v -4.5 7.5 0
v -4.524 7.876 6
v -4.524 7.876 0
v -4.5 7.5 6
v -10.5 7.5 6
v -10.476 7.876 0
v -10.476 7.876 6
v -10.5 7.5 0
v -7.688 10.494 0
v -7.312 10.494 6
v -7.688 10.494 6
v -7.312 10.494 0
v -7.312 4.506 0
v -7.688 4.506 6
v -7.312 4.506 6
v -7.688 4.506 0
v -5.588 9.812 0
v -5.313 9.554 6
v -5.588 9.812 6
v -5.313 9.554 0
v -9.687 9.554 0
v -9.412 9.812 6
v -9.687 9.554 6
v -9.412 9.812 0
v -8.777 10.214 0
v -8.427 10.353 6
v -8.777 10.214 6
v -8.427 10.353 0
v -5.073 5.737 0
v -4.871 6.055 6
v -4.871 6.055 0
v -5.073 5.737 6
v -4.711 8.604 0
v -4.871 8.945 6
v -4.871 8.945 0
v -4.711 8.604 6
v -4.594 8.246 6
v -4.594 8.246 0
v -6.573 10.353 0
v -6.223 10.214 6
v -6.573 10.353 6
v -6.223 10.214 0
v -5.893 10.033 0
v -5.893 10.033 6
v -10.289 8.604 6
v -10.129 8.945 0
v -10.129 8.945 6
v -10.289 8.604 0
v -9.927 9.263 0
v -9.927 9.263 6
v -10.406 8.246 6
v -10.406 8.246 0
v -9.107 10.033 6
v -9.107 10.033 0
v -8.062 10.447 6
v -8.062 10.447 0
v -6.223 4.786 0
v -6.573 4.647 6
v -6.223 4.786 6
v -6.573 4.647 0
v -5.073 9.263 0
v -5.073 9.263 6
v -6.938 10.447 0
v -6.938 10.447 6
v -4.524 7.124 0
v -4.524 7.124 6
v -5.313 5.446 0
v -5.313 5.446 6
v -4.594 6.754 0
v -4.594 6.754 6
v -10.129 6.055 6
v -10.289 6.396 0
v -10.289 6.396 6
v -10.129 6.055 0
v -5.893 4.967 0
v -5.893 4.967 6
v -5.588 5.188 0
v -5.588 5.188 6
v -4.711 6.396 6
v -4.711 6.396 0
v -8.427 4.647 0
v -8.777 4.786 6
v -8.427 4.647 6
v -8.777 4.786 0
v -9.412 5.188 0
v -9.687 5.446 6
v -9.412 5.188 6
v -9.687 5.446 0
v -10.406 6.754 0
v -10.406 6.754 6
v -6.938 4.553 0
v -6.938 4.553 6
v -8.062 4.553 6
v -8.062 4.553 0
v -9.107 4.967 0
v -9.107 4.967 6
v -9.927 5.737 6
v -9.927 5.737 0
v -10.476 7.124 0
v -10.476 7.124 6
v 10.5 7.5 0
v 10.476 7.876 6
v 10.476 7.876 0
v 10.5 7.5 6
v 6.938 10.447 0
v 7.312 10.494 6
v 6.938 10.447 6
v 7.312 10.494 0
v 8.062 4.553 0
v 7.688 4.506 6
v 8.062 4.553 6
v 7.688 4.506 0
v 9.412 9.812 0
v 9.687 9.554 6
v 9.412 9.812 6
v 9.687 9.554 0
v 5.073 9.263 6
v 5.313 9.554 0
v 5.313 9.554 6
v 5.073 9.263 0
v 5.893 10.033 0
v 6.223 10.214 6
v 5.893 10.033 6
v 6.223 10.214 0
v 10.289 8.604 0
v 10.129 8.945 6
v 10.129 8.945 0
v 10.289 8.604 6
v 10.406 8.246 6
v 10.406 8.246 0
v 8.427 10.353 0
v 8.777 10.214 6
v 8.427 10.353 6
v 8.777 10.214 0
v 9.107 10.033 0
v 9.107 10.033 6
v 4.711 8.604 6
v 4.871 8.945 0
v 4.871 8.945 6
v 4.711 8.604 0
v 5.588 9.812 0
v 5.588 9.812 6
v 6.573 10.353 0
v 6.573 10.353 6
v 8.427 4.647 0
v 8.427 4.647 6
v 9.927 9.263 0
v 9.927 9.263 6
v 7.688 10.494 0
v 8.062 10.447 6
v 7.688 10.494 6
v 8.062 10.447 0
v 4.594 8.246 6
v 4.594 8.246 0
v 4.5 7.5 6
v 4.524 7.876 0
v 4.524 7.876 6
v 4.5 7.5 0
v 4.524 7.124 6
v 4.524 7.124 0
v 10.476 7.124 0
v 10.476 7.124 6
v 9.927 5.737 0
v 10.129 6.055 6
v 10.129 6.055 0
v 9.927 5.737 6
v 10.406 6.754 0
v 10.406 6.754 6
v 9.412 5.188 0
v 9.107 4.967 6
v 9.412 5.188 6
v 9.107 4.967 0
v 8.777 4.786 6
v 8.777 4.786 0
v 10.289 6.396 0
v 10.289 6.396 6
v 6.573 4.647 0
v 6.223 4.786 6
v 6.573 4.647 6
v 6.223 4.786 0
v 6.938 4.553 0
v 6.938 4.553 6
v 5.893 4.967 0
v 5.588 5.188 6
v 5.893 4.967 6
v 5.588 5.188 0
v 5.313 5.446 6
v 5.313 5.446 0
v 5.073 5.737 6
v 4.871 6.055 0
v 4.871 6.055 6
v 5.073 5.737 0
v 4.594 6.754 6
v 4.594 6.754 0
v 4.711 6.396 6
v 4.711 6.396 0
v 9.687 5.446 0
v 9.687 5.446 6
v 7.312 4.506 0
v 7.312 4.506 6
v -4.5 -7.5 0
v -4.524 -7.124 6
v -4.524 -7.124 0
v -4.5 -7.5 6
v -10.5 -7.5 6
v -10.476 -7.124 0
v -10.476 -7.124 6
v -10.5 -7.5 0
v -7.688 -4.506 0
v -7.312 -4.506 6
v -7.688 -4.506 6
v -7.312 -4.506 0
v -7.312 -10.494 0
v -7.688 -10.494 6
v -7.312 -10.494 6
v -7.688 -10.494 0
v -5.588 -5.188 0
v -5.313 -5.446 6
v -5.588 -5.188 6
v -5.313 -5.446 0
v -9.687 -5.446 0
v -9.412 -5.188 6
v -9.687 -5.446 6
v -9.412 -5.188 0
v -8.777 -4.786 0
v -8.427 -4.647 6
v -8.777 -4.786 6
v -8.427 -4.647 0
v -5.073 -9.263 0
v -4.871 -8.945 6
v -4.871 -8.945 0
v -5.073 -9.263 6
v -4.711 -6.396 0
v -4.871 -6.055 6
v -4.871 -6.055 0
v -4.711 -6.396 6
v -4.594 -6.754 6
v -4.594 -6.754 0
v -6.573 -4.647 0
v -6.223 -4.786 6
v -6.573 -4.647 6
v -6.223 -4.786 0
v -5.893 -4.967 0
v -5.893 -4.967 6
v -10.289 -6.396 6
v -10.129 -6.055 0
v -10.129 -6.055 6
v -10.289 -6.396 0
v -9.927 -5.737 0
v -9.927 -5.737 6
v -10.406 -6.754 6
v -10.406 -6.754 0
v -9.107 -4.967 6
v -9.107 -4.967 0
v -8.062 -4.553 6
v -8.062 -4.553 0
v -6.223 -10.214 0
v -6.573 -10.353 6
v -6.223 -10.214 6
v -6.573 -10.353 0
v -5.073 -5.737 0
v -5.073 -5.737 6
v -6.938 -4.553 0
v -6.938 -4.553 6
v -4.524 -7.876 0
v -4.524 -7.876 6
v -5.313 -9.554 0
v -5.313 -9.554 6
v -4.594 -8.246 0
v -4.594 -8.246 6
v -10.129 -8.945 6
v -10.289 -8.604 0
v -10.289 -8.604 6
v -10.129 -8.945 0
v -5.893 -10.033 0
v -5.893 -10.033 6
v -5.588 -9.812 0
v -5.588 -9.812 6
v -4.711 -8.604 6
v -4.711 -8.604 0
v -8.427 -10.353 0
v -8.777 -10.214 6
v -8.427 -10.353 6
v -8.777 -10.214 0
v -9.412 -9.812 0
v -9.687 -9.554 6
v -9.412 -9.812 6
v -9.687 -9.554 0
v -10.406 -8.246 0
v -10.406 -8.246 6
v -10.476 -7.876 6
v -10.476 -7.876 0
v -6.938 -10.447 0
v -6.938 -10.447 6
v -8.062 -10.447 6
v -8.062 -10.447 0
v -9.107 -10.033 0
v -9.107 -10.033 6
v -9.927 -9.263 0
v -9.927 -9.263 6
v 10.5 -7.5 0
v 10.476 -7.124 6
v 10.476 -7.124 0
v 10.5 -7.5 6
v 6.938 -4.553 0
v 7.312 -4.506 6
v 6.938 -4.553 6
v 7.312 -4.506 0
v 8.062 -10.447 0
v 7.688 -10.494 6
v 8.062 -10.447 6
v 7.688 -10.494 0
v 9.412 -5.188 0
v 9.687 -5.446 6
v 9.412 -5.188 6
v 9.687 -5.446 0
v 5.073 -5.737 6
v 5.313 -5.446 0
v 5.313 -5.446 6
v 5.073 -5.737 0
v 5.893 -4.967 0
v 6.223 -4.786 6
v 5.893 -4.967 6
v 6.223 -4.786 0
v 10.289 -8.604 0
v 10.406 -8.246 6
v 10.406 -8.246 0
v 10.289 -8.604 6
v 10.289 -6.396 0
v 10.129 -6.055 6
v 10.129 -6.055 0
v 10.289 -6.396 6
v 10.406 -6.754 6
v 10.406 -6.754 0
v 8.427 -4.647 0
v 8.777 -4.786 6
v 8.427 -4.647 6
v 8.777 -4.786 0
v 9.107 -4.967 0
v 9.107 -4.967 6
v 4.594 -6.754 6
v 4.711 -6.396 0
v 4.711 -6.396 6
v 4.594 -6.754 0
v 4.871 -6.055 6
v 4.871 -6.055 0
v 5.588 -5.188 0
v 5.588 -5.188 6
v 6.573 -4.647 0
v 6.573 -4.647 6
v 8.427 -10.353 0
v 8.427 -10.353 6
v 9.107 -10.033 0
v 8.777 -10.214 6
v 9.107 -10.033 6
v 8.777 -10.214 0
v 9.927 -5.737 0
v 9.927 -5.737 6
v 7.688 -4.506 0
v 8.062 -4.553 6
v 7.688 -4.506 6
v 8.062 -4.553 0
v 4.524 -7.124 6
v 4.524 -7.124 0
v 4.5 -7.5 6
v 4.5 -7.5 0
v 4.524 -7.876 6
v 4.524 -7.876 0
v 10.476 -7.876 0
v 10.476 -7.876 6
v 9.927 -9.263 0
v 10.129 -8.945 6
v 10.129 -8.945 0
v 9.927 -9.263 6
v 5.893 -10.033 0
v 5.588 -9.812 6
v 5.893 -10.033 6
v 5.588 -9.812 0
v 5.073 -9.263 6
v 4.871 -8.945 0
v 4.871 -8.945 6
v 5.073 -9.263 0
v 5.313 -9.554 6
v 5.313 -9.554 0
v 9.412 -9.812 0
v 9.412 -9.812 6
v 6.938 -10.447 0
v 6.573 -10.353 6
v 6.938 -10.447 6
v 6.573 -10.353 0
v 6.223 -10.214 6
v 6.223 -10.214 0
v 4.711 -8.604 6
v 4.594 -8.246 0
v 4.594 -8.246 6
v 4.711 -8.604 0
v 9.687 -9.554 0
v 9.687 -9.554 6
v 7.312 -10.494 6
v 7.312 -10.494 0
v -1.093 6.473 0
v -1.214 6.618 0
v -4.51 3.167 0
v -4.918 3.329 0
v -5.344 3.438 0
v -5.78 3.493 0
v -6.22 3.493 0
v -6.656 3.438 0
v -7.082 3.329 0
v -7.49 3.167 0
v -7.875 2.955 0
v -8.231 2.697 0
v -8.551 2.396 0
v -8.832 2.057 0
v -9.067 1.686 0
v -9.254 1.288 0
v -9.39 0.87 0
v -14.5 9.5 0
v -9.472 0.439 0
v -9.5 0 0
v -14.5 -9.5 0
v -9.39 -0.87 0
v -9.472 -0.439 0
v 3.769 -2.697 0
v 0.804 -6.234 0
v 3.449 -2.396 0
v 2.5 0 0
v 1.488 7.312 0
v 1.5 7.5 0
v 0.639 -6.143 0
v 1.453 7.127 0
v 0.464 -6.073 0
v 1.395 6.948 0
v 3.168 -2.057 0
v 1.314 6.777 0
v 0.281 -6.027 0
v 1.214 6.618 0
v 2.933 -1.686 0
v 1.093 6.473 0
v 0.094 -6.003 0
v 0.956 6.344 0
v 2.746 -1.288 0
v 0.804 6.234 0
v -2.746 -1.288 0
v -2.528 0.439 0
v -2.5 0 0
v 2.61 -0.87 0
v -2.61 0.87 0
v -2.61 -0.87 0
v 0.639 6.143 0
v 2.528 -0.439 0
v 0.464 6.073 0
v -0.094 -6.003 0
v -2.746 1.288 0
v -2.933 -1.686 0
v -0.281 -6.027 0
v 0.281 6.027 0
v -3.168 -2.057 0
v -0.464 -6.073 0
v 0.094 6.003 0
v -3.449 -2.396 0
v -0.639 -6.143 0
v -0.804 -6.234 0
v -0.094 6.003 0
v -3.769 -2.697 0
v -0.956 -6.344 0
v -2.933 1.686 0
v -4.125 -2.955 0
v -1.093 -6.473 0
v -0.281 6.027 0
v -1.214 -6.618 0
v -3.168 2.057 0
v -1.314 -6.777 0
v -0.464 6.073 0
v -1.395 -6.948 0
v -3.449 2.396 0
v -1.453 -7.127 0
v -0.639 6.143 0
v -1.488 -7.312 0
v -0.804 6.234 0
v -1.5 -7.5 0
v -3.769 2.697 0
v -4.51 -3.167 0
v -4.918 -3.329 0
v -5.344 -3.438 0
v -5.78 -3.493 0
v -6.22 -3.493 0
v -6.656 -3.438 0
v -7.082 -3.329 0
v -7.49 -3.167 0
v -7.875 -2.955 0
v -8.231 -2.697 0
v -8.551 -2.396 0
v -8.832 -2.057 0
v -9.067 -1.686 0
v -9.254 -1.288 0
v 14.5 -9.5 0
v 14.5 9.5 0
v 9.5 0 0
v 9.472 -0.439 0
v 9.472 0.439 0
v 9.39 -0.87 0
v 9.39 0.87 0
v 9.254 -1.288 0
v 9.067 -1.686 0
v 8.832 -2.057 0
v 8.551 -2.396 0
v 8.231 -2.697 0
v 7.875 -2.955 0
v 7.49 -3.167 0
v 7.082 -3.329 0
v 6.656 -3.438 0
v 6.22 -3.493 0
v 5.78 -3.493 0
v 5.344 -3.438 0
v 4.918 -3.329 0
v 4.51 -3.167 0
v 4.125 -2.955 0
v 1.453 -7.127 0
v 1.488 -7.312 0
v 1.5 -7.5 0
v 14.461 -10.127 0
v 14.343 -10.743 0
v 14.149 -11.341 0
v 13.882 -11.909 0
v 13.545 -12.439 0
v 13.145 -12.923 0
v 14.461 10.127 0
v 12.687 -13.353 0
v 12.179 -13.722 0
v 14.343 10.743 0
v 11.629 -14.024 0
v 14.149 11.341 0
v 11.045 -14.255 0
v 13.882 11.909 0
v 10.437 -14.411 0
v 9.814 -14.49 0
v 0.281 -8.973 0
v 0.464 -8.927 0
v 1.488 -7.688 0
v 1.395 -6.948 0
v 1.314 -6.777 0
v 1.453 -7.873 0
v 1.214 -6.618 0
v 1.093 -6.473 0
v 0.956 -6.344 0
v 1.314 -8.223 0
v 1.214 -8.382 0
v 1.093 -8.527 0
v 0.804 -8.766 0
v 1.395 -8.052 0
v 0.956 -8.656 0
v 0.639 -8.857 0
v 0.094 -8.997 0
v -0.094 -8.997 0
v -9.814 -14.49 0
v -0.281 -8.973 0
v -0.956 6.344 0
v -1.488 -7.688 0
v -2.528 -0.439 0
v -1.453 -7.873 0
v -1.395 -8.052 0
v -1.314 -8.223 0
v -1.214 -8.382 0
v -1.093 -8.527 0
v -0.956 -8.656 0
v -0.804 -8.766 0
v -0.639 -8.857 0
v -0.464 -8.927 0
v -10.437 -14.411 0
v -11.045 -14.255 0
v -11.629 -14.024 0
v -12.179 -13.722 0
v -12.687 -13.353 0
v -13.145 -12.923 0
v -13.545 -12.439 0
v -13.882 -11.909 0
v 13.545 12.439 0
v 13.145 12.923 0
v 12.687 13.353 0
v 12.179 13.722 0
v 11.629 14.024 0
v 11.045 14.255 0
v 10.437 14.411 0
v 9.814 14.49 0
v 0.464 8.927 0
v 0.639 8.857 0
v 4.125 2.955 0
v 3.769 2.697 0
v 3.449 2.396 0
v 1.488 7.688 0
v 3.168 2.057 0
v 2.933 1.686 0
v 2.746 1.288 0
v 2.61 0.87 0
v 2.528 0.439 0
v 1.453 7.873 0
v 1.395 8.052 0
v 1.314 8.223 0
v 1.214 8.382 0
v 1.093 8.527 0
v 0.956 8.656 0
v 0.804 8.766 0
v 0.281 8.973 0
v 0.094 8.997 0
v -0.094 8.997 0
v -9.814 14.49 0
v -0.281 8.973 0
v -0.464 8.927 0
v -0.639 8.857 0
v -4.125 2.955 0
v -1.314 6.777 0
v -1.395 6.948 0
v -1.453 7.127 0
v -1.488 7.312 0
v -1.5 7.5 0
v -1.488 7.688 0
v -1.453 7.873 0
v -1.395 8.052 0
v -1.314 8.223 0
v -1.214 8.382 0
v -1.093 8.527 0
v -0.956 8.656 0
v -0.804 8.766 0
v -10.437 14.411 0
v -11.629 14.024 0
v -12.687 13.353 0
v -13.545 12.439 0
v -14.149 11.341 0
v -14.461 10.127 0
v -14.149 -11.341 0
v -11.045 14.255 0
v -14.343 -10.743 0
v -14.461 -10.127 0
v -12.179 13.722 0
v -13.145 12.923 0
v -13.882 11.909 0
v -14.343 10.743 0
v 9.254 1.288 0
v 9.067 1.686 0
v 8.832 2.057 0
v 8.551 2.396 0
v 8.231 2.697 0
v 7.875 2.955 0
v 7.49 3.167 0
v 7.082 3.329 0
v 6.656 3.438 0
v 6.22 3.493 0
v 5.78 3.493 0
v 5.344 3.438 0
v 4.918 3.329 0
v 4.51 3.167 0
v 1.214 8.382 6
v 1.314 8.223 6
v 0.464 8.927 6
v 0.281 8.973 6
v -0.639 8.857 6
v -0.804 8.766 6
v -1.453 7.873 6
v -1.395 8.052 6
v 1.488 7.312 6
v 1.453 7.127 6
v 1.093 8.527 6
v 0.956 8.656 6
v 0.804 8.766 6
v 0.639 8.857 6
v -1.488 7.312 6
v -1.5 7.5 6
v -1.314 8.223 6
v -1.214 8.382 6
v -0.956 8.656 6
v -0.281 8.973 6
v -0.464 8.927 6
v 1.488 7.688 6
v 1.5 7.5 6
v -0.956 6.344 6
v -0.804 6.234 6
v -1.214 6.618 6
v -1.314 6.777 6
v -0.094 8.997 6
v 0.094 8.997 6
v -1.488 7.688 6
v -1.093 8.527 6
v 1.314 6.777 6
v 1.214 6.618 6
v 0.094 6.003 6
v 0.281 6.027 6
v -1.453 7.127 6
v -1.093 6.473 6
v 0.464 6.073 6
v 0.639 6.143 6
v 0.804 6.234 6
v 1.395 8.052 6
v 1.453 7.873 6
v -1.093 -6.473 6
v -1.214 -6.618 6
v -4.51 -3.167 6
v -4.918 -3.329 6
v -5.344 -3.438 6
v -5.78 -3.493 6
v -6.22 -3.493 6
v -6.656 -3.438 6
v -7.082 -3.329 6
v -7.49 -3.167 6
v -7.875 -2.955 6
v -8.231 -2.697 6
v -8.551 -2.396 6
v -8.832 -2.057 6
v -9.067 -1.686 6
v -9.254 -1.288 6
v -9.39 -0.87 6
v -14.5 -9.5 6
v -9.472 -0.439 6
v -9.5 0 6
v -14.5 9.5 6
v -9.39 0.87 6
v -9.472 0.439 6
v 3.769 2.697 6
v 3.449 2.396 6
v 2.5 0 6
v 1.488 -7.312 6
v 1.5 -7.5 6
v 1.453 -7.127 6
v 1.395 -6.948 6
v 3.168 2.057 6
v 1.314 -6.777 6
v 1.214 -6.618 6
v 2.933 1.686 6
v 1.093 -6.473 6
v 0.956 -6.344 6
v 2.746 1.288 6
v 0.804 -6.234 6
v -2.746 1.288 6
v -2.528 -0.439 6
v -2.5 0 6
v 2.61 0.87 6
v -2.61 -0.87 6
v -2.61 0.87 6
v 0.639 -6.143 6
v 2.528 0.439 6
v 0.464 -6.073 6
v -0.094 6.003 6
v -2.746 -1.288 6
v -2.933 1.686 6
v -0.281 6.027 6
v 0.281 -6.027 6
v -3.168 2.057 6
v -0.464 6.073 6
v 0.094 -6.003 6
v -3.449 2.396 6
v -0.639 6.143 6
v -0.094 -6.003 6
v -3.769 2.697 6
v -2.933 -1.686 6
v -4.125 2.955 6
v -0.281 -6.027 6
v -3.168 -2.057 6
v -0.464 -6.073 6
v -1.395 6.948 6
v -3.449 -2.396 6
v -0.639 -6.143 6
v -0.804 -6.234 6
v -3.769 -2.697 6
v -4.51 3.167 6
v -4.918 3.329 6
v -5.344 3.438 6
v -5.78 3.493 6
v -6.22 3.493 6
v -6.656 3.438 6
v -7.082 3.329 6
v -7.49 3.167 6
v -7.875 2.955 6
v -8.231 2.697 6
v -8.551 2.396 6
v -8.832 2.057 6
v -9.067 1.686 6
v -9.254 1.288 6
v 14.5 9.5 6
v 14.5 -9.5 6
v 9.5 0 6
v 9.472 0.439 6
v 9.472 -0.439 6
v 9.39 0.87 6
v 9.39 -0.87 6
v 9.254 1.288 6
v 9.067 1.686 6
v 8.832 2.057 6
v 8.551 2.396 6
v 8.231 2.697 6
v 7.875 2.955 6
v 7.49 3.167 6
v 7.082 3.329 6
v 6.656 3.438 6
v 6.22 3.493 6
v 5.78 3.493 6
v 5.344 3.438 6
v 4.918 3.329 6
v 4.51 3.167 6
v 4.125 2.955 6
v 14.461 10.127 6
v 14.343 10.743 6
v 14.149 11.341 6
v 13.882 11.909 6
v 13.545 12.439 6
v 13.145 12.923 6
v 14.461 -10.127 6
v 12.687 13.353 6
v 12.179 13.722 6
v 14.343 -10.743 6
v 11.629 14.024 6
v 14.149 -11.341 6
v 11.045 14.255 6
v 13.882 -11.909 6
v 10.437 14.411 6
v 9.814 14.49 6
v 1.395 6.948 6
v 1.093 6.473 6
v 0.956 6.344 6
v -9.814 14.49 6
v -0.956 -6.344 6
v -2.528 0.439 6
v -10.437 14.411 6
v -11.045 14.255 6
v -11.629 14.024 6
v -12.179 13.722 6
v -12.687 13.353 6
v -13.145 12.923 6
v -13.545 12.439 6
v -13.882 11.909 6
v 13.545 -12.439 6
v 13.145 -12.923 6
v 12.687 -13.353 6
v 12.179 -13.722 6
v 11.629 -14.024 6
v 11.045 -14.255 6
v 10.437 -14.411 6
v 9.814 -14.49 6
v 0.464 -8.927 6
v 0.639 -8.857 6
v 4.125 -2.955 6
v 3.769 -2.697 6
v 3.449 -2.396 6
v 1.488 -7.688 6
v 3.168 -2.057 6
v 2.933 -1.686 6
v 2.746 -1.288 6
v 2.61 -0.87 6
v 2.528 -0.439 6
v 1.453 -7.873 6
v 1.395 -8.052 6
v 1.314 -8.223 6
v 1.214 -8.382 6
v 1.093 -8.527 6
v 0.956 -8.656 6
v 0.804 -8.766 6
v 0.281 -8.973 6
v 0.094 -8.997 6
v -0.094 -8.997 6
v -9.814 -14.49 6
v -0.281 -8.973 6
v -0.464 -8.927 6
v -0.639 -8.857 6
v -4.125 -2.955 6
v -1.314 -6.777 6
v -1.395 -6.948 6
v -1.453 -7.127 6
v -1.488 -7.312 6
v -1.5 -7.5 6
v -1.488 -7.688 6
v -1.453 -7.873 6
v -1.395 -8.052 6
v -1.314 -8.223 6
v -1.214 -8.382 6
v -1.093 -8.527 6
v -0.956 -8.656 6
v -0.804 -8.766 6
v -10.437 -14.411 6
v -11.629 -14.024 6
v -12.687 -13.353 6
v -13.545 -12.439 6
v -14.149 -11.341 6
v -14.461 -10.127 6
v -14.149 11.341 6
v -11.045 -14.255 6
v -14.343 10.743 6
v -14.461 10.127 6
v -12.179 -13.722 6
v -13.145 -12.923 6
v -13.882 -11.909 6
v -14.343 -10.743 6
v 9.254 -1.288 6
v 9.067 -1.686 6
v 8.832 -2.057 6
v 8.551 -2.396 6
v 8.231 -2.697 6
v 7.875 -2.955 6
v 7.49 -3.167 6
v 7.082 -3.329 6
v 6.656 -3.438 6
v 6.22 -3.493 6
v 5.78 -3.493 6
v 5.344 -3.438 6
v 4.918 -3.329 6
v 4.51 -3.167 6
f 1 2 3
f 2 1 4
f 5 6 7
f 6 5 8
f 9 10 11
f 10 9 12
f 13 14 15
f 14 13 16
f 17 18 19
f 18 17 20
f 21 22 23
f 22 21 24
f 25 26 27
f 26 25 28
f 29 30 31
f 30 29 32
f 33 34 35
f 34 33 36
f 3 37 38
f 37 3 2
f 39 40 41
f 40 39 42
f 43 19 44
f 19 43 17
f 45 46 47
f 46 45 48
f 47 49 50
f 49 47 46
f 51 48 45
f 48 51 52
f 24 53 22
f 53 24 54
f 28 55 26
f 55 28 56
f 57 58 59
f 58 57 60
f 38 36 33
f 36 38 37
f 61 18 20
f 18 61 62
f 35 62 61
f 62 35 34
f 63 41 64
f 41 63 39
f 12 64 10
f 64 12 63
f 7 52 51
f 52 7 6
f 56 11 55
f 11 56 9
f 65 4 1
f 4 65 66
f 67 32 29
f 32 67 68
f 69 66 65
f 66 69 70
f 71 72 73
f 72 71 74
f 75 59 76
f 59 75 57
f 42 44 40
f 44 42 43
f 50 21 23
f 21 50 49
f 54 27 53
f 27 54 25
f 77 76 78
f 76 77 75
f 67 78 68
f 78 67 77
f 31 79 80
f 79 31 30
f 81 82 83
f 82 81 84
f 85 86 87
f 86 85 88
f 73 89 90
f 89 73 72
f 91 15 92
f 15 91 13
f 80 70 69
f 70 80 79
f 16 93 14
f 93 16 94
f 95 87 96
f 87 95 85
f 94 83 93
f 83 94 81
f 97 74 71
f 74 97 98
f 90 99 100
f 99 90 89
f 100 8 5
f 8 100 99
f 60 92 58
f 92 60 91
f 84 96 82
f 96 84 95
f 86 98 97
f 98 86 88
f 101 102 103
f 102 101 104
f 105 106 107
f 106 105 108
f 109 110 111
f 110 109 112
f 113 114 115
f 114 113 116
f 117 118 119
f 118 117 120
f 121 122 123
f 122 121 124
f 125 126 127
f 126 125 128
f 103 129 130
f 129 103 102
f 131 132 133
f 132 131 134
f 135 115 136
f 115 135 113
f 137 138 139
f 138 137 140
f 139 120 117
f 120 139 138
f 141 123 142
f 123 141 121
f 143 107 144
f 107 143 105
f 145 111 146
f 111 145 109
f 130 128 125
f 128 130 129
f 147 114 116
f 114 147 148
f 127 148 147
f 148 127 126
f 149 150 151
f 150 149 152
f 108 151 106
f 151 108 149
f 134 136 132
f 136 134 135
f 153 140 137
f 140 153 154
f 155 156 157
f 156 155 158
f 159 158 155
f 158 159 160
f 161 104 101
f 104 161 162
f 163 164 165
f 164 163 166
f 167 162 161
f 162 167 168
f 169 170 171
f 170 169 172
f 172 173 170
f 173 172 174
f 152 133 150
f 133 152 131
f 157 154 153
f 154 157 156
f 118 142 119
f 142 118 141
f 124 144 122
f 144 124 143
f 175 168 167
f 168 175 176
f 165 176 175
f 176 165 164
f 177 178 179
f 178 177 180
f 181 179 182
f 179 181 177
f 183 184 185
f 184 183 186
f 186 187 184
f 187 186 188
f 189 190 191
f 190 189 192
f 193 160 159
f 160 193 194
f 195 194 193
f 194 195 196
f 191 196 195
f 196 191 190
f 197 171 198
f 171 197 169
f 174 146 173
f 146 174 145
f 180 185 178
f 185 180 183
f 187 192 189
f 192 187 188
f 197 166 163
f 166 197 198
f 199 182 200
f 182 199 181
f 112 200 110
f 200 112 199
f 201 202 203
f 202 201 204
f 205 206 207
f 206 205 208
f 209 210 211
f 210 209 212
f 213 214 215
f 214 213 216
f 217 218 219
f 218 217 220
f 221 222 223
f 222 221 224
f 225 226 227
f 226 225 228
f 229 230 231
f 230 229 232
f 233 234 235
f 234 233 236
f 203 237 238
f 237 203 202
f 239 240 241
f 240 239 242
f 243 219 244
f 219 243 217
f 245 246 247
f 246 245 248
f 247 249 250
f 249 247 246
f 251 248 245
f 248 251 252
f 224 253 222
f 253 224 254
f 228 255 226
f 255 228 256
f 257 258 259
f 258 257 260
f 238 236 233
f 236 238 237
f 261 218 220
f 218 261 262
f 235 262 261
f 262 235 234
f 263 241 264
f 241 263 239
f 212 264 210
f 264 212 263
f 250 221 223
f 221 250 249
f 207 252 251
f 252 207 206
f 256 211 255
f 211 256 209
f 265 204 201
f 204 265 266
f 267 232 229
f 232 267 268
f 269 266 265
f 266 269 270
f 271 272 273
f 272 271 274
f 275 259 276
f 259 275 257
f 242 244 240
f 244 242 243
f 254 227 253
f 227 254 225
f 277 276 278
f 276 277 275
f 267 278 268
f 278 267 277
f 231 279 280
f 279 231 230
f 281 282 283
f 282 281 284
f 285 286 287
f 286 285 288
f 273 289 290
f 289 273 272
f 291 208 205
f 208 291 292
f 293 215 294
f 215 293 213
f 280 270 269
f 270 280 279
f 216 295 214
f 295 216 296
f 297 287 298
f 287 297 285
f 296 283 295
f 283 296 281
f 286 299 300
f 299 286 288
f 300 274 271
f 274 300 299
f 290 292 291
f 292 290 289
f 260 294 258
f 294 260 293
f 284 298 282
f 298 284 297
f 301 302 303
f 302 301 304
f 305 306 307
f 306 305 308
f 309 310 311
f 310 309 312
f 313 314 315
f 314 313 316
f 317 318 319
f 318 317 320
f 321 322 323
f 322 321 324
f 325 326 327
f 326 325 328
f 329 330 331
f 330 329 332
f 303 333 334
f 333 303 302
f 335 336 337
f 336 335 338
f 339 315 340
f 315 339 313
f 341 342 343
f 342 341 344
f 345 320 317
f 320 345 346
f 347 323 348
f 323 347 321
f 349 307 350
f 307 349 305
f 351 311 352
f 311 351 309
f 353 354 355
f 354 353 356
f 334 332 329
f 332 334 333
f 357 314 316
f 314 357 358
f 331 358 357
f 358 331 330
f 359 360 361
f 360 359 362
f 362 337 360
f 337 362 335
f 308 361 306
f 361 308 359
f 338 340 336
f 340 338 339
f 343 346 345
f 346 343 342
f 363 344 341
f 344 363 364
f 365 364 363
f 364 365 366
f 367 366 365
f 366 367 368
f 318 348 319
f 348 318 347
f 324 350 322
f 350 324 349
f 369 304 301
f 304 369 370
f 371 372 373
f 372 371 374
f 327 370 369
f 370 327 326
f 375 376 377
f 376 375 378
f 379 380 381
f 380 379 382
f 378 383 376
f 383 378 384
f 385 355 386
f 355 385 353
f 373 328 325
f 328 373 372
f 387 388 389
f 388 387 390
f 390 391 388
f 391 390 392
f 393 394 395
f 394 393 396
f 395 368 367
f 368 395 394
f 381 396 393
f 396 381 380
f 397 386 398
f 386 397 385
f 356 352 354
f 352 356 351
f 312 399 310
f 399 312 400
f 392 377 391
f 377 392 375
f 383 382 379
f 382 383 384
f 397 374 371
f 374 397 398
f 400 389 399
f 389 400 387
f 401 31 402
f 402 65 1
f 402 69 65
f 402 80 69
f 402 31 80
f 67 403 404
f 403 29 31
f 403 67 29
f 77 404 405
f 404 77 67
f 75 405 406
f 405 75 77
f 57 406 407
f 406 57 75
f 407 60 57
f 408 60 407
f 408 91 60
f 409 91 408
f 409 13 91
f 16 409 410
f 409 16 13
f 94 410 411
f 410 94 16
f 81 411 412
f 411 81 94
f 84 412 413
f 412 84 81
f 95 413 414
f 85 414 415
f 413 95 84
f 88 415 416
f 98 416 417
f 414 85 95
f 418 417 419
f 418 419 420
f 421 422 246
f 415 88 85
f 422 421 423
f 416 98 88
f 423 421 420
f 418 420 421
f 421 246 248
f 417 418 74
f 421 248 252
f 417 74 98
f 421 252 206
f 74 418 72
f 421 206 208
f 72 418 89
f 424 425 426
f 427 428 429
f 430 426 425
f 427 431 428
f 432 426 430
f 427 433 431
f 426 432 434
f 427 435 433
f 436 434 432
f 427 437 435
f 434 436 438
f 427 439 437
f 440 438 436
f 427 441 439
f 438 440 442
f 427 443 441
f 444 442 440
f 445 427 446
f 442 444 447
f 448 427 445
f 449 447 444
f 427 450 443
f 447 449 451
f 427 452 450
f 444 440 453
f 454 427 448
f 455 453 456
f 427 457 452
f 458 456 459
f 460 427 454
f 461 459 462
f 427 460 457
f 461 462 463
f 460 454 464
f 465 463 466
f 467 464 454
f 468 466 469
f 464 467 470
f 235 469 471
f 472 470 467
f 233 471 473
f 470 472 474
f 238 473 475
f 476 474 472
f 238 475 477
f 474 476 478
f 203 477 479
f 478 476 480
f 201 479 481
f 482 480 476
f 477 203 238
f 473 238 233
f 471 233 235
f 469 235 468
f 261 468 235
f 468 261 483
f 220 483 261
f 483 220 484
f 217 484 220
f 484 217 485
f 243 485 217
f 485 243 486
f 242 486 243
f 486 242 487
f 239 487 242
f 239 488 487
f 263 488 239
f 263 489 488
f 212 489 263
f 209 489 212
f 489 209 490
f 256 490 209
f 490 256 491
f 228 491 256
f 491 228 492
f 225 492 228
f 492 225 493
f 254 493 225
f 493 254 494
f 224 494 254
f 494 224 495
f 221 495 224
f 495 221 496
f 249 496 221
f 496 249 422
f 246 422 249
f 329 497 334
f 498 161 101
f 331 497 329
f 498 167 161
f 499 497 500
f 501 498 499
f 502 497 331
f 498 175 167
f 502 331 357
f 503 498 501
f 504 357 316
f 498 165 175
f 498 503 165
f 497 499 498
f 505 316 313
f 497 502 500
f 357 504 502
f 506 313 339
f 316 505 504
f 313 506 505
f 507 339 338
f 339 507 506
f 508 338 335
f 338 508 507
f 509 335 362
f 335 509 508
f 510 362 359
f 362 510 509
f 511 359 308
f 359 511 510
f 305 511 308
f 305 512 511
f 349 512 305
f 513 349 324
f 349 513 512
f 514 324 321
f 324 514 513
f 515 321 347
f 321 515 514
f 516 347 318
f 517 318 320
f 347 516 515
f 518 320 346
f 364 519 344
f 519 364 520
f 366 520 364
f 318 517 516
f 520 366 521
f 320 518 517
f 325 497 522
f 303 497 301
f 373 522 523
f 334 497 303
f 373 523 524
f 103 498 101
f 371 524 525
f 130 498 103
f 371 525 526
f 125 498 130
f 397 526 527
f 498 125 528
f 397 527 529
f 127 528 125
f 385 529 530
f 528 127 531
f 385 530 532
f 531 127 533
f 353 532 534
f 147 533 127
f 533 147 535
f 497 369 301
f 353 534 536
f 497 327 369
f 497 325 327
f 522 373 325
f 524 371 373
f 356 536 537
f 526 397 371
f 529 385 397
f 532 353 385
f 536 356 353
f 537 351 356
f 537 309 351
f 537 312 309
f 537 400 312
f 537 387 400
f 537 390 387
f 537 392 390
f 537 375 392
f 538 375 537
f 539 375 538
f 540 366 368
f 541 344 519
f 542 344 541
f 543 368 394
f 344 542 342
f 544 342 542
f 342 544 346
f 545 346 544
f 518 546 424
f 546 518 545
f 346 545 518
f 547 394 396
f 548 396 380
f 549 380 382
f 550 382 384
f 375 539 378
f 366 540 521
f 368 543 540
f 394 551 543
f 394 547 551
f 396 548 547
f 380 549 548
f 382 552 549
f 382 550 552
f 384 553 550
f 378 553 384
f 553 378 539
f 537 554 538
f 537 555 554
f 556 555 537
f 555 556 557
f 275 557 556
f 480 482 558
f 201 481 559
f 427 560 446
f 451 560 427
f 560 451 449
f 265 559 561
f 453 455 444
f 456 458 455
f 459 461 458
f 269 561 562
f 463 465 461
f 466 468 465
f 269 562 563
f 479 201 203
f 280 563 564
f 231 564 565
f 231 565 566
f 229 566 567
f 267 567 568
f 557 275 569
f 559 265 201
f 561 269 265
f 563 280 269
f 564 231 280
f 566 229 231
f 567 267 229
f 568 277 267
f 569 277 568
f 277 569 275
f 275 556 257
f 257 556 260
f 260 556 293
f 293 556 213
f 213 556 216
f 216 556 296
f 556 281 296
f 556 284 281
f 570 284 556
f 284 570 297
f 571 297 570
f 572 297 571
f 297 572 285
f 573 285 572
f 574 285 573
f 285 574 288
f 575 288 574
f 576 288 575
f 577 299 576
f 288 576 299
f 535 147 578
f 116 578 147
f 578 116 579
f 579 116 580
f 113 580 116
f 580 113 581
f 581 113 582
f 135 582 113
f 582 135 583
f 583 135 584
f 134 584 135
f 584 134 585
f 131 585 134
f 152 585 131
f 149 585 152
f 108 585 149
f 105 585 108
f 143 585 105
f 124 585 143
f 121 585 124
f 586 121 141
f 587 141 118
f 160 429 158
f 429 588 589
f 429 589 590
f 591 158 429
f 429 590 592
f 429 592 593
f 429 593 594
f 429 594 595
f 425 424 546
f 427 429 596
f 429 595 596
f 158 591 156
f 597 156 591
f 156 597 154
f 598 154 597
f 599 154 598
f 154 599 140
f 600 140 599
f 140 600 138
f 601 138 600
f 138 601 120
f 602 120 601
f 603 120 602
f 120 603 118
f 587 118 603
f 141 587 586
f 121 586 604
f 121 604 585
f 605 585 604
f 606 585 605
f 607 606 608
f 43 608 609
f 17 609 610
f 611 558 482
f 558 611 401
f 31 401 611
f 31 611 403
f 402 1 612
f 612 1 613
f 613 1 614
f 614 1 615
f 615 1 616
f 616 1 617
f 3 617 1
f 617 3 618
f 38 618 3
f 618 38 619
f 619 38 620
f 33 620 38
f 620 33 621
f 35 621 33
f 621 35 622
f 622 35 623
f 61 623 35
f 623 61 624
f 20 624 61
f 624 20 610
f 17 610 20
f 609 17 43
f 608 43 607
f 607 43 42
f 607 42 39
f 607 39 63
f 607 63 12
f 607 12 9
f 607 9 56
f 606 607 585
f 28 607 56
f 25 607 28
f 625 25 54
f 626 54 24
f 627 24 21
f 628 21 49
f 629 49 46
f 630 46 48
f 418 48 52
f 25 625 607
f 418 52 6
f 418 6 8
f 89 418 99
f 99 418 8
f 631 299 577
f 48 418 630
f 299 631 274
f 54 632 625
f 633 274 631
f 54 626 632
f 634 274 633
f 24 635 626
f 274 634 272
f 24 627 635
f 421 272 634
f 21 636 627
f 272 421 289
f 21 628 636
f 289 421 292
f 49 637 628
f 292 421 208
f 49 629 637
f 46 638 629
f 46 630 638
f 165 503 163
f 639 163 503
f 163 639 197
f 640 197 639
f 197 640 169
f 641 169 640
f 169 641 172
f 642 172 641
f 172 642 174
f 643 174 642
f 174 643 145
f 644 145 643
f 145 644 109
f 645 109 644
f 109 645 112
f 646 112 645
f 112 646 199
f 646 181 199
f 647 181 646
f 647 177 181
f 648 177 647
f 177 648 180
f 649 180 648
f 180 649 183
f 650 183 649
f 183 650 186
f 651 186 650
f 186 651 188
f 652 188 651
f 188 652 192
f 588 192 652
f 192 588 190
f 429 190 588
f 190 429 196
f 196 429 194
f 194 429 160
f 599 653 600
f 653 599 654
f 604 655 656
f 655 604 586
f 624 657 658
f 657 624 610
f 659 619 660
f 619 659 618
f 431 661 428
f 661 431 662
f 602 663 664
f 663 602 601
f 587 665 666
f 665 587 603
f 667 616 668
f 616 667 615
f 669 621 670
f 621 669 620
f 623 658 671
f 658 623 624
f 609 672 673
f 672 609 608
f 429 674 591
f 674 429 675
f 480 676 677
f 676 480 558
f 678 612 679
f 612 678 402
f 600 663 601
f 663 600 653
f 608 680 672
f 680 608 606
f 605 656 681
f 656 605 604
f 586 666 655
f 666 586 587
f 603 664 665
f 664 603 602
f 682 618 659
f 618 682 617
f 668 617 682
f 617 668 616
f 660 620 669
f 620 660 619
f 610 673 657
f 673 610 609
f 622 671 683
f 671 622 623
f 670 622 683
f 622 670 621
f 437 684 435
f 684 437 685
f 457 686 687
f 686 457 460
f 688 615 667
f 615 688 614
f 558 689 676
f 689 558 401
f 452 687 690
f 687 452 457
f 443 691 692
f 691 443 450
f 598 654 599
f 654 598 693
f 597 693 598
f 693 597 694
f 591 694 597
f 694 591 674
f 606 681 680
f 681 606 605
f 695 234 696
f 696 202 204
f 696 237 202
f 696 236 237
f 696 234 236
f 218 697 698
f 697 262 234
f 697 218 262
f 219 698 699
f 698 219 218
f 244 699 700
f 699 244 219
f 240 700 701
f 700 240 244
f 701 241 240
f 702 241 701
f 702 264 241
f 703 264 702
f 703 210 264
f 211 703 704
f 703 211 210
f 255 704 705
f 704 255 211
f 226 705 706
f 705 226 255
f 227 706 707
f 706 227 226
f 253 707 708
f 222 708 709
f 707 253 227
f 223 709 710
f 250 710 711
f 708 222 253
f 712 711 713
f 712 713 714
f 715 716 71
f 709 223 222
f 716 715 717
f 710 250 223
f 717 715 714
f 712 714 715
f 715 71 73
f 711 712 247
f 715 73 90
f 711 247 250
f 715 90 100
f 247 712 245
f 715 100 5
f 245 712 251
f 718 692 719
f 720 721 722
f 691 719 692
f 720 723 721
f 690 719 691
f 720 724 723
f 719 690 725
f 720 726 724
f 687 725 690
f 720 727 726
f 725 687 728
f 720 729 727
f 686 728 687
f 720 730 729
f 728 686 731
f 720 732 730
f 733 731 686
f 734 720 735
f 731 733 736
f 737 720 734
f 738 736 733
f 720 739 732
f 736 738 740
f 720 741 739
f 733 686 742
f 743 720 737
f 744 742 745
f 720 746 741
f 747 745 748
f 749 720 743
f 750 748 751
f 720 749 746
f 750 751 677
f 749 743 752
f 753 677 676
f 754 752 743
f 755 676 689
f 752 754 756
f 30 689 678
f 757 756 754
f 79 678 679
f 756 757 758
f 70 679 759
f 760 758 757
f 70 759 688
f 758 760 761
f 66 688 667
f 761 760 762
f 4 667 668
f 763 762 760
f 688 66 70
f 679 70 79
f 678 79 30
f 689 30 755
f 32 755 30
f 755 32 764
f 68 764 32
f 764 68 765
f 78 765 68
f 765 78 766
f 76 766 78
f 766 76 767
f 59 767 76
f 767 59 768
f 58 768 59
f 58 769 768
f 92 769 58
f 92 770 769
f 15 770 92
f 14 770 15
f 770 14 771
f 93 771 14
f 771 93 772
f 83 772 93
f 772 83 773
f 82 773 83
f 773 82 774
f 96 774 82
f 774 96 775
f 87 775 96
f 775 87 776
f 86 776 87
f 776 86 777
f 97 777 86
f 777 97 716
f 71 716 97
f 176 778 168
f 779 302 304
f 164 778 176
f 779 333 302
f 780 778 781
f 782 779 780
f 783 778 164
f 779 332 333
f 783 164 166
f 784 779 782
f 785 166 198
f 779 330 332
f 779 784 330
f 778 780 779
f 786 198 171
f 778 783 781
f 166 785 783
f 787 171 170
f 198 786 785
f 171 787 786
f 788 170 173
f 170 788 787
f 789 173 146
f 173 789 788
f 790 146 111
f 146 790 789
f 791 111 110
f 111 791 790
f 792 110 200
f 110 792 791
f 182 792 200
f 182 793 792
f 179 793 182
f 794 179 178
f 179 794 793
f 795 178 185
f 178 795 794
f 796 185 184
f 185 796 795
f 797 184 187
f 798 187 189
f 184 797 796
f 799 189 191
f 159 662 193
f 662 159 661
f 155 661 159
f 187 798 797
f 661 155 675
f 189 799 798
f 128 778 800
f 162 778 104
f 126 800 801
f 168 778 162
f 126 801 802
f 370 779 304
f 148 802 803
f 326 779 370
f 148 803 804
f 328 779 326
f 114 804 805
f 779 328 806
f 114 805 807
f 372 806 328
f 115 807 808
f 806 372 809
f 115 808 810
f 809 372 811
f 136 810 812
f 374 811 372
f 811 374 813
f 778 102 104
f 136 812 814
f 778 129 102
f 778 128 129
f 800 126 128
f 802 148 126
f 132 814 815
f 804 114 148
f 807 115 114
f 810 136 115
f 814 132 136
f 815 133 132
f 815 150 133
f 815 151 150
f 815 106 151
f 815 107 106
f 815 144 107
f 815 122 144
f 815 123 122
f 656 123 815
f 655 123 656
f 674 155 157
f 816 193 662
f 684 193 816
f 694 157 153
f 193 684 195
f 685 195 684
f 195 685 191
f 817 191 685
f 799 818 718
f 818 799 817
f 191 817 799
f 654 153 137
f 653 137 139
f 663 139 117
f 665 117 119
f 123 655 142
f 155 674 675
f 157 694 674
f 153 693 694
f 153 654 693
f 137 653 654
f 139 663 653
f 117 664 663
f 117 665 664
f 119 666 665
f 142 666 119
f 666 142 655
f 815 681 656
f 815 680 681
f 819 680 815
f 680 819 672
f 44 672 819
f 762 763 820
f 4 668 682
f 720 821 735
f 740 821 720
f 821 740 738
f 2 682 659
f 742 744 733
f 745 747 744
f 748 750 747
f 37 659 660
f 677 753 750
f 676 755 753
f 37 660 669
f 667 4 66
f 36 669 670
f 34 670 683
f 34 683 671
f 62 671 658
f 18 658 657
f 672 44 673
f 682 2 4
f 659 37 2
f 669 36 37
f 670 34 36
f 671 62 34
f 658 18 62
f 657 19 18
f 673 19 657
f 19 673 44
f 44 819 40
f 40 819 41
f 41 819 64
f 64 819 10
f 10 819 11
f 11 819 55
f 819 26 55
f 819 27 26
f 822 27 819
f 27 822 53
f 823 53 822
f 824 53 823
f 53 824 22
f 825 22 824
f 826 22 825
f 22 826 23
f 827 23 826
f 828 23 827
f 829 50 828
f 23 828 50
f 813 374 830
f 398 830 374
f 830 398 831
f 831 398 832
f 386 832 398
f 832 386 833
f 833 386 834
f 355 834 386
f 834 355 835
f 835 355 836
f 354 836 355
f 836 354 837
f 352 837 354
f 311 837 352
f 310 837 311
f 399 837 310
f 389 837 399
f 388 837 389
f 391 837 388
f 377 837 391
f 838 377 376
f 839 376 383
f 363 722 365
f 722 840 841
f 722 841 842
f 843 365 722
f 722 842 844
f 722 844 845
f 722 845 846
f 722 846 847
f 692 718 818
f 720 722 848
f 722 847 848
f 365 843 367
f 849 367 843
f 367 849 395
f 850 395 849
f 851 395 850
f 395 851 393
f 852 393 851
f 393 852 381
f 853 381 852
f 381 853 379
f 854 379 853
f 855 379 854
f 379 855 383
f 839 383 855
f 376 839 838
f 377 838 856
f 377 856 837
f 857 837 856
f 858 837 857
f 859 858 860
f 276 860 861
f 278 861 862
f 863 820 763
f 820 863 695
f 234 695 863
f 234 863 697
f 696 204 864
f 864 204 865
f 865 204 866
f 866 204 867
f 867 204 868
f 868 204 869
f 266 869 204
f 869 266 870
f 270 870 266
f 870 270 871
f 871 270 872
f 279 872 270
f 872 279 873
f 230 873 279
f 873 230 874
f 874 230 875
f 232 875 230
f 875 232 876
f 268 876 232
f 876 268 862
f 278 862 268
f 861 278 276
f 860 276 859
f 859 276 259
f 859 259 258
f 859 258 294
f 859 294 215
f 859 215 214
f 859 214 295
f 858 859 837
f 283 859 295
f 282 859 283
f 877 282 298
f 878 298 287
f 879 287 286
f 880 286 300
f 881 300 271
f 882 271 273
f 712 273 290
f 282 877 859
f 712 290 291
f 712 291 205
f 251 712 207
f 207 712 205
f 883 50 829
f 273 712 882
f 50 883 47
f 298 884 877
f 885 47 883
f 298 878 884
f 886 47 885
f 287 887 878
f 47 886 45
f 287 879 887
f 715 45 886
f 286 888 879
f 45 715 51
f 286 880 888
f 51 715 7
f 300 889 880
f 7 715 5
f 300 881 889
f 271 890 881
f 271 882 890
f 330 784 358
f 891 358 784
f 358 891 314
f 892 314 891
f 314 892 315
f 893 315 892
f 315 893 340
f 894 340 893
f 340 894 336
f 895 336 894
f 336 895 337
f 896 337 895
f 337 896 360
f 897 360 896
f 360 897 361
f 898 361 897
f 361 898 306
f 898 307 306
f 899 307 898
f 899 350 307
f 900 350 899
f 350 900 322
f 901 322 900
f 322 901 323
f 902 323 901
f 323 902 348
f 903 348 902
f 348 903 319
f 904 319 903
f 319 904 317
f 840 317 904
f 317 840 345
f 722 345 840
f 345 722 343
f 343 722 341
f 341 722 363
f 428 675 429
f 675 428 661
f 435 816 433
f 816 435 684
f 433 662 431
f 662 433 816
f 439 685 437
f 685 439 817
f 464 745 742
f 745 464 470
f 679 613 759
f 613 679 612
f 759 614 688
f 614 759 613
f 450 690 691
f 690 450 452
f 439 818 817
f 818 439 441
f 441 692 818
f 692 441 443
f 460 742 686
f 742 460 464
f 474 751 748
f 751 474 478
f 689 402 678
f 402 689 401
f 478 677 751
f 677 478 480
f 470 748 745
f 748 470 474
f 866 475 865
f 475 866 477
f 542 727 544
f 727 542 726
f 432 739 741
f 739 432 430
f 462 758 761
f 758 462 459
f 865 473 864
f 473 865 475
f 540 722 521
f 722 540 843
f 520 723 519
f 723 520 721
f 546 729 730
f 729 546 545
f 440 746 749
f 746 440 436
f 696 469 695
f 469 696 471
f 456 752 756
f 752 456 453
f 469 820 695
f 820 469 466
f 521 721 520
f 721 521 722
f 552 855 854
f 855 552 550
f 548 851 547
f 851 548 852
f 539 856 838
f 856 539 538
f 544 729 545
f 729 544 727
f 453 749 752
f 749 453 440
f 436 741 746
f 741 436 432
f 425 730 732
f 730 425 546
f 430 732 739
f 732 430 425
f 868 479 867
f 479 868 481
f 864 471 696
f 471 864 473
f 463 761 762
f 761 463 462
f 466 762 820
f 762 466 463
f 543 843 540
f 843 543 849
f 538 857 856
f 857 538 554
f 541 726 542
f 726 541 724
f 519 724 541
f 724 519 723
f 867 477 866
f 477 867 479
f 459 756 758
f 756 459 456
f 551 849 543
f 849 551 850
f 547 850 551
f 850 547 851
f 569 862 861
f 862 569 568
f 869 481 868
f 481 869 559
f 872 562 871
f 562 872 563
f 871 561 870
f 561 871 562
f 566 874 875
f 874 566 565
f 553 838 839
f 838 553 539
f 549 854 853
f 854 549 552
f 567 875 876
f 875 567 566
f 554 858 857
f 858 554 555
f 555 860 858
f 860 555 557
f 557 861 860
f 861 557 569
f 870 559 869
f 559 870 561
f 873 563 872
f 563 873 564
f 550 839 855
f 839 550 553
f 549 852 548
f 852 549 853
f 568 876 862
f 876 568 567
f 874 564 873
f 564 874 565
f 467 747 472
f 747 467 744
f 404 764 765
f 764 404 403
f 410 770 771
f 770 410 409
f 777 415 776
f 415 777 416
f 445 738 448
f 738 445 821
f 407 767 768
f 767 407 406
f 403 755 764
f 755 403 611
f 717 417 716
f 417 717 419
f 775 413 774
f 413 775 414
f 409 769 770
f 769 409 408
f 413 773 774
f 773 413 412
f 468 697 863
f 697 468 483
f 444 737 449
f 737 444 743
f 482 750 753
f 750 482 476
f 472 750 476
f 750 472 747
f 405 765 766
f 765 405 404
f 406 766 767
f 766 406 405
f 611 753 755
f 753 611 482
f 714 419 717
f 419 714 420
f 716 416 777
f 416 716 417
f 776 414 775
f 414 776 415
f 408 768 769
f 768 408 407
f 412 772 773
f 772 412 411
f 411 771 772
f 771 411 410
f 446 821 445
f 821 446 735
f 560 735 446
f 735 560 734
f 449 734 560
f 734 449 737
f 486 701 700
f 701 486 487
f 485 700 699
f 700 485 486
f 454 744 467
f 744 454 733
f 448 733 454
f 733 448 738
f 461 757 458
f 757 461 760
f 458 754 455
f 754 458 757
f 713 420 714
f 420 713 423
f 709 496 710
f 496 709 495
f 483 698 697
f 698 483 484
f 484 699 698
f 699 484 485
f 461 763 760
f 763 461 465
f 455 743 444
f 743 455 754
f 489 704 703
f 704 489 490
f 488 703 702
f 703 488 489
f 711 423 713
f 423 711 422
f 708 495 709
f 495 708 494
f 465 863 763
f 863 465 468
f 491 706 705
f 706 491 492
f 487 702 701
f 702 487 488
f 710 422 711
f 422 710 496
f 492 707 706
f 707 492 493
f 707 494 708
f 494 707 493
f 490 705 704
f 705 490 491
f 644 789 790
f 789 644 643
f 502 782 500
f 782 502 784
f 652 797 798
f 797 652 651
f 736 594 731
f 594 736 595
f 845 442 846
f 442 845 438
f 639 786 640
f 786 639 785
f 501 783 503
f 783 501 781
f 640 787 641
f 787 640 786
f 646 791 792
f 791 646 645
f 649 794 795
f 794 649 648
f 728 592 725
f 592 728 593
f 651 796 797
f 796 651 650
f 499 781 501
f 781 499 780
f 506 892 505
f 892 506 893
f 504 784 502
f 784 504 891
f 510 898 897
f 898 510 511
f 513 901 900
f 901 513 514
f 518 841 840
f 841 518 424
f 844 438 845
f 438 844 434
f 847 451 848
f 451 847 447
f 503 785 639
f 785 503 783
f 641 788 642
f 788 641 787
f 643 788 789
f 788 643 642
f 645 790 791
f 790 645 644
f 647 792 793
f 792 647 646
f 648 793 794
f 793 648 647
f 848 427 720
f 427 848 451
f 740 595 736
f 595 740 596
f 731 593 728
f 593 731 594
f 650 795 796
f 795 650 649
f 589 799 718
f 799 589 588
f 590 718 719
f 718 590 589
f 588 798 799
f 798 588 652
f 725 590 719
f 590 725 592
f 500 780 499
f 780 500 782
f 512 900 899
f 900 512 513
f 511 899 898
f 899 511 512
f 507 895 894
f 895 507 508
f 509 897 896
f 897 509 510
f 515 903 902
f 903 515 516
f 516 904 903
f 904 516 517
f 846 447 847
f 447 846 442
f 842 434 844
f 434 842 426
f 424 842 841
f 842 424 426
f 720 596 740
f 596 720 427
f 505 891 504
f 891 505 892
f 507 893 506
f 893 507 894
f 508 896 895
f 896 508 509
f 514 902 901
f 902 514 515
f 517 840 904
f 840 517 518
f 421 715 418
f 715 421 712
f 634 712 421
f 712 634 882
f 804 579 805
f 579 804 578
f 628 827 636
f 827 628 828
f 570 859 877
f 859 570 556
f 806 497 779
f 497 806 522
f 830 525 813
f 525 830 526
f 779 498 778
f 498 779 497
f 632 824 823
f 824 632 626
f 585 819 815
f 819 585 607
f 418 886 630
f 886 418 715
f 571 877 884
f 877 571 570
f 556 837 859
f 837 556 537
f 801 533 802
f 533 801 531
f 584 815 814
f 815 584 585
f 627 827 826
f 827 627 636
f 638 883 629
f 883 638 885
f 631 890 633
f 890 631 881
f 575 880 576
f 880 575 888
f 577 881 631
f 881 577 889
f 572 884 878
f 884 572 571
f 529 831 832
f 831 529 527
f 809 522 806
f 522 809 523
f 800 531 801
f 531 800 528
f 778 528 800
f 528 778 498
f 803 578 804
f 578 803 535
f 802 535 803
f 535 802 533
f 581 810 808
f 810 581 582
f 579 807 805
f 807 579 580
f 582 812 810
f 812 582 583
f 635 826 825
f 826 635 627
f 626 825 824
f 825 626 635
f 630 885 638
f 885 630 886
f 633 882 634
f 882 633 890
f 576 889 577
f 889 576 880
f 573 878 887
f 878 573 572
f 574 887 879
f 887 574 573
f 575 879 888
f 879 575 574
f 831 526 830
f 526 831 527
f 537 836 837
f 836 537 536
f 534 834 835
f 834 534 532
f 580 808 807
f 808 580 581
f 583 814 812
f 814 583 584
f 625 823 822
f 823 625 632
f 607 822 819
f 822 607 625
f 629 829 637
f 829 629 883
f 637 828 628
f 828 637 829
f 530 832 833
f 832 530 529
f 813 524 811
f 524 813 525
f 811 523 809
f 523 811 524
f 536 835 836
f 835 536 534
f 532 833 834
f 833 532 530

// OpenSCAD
$fn = 50;


difference() {
	union() {
		hull() {
			translate(v = [-9.5000000000, 9.5000000000, 0]) {
				cylinder(h = 6, r = 5);
			}
			translate(v = [9.5000000000, 9.5000000000, 0]) {
				cylinder(h = 6, r = 5);
			}
			translate(v = [-9.5000000000, -9.5000000000, 0]) {
				cylinder(h = 6, r = 5);
			}
			translate(v = [9.5000000000, -9.5000000000, 0]) {
				cylinder(h = 6, r = 5);
			}
		}
	}
	union() {
		#translate(v = [-7.5000000000, 7.5000000000, 0]) {
			cylinder(h = 6, r = 3.0000000000);
		}
		#translate(v = [7.5000000000, 7.5000000000, 0]) {
			cylinder(h = 6, r = 3.0000000000);
		}
		#translate(v = [-7.5000000000, -7.5000000000, 0]) {
			cylinder(h = 6, r = 3.0000000000);
		}
		#translate(v = [7.5000000000, -7.5000000000, 0]) {
			cylinder(h = 6, r = 3.0000000000);
		}
		#translate(v = [-7.5000000000, -7.5000000000, -100.0000000000]) {
			cylinder(h = 200, r = 3.0000000000);
		}
		#translate(v = [-7.5000000000, 7.5000000000, -100.0000000000]) {
			cylinder(h = 200, r = 3.0000000000);
		}
		#translate(v = [7.5000000000, -7.5000000000, -100.0000000000]) {
			cylinder(h = 200, r = 3.0000000000);
		}
		#translate(v = [7.5000000000, 7.5000000000, -100.0000000000]) {
			cylinder(h = 200, r = 3.0000000000);
		}
		#translate(v = [-7.5000000000, 7.5000000000, 0]) {
			cylinder(h = 6, r = 1.5000000000);
		}
		#translate(v = [0.0000000000, 7.5000000000, 0]) {
			cylinder(h = 6, r = 1.5000000000);
		}
		#translate(v = [7.5000000000, 7.5000000000, 0]) {
			cylinder(h = 6, r = 1.5000000000);
		}
		#translate(v = [-7.5000000000, -7.5000000000, 0]) {
			cylinder(h = 6, r = 1.5000000000);
		}
		#translate(v = [0.0000000000, -7.5000000000, 0]) {
			cylinder(h = 6, r = 1.5000000000);
		}
		#translate(v = [7.5000000000, -7.5000000000, 0]) {
			cylinder(h = 6, r = 1.5000000000);
		}
		#translate(v = [-7.5000000000, 7.5000000000, 0]) {
			cylinder(h = 6, r = 1.5000000000);
		}
		#translate(v = [0.0000000000, 7.5000000000, 0]) {
			cylinder(h = 6, r = 1.5000000000);
		}
		#translate(v = [7.5000000000, 7.5000000000, 0]) {
			cylinder(h = 6, r = 1.5000000000);
		}
		#translate(v = [-7.5000000000, -7.5000000000, 0]) {
			cylinder(h = 6, r = 1.5000000000);
		}
		#translate(v = [0.0000000000, -7.5000000000, 0]) {
			cylinder(h = 6, r = 1.5000000000);
		}
		#translate(v = [7.5000000000, -7.5000000000, 0]) {
			cylinder(h = 6, r = 1.5000000000);
		}
		#translate(v = [-7.5000000000, 7.5000000000, 0]) {
			cylinder(h = 6, r = 1.5000000000);
		}
		#translate(v = [0.0000000000, 7.5000000000, 0]) {
			cylinder(h = 6, r = 1.5000000000);
		}
		#translate(v = [7.5000000000, 7.5000000000, 0]) {
			cylinder(h = 6, r = 1.5000000000);
		}
		#translate(v = [-7.5000000000, -7.5000000000, 0]) {
			cylinder(h = 6, r = 1.5000000000);
		}
		#translate(v = [0.0000000000, -7.5000000000, 0]) {
			cylinder(h = 6, r = 1.5000000000);
		}
		#translate(v = [7.5000000000, -7.5000000000, 0]) {
			cylinder(h = 6, r = 1.5000000000);
		}
		#translate(v = [-6.0000000000, 0, 0]) {
			cylinder(h = 6, r = 3.5000000000);
		}
		#translate(v = [6.0000000000, 0, 0]) {
			cylinder(h = 6, r = 3.5000000000);
		}
	}
}
